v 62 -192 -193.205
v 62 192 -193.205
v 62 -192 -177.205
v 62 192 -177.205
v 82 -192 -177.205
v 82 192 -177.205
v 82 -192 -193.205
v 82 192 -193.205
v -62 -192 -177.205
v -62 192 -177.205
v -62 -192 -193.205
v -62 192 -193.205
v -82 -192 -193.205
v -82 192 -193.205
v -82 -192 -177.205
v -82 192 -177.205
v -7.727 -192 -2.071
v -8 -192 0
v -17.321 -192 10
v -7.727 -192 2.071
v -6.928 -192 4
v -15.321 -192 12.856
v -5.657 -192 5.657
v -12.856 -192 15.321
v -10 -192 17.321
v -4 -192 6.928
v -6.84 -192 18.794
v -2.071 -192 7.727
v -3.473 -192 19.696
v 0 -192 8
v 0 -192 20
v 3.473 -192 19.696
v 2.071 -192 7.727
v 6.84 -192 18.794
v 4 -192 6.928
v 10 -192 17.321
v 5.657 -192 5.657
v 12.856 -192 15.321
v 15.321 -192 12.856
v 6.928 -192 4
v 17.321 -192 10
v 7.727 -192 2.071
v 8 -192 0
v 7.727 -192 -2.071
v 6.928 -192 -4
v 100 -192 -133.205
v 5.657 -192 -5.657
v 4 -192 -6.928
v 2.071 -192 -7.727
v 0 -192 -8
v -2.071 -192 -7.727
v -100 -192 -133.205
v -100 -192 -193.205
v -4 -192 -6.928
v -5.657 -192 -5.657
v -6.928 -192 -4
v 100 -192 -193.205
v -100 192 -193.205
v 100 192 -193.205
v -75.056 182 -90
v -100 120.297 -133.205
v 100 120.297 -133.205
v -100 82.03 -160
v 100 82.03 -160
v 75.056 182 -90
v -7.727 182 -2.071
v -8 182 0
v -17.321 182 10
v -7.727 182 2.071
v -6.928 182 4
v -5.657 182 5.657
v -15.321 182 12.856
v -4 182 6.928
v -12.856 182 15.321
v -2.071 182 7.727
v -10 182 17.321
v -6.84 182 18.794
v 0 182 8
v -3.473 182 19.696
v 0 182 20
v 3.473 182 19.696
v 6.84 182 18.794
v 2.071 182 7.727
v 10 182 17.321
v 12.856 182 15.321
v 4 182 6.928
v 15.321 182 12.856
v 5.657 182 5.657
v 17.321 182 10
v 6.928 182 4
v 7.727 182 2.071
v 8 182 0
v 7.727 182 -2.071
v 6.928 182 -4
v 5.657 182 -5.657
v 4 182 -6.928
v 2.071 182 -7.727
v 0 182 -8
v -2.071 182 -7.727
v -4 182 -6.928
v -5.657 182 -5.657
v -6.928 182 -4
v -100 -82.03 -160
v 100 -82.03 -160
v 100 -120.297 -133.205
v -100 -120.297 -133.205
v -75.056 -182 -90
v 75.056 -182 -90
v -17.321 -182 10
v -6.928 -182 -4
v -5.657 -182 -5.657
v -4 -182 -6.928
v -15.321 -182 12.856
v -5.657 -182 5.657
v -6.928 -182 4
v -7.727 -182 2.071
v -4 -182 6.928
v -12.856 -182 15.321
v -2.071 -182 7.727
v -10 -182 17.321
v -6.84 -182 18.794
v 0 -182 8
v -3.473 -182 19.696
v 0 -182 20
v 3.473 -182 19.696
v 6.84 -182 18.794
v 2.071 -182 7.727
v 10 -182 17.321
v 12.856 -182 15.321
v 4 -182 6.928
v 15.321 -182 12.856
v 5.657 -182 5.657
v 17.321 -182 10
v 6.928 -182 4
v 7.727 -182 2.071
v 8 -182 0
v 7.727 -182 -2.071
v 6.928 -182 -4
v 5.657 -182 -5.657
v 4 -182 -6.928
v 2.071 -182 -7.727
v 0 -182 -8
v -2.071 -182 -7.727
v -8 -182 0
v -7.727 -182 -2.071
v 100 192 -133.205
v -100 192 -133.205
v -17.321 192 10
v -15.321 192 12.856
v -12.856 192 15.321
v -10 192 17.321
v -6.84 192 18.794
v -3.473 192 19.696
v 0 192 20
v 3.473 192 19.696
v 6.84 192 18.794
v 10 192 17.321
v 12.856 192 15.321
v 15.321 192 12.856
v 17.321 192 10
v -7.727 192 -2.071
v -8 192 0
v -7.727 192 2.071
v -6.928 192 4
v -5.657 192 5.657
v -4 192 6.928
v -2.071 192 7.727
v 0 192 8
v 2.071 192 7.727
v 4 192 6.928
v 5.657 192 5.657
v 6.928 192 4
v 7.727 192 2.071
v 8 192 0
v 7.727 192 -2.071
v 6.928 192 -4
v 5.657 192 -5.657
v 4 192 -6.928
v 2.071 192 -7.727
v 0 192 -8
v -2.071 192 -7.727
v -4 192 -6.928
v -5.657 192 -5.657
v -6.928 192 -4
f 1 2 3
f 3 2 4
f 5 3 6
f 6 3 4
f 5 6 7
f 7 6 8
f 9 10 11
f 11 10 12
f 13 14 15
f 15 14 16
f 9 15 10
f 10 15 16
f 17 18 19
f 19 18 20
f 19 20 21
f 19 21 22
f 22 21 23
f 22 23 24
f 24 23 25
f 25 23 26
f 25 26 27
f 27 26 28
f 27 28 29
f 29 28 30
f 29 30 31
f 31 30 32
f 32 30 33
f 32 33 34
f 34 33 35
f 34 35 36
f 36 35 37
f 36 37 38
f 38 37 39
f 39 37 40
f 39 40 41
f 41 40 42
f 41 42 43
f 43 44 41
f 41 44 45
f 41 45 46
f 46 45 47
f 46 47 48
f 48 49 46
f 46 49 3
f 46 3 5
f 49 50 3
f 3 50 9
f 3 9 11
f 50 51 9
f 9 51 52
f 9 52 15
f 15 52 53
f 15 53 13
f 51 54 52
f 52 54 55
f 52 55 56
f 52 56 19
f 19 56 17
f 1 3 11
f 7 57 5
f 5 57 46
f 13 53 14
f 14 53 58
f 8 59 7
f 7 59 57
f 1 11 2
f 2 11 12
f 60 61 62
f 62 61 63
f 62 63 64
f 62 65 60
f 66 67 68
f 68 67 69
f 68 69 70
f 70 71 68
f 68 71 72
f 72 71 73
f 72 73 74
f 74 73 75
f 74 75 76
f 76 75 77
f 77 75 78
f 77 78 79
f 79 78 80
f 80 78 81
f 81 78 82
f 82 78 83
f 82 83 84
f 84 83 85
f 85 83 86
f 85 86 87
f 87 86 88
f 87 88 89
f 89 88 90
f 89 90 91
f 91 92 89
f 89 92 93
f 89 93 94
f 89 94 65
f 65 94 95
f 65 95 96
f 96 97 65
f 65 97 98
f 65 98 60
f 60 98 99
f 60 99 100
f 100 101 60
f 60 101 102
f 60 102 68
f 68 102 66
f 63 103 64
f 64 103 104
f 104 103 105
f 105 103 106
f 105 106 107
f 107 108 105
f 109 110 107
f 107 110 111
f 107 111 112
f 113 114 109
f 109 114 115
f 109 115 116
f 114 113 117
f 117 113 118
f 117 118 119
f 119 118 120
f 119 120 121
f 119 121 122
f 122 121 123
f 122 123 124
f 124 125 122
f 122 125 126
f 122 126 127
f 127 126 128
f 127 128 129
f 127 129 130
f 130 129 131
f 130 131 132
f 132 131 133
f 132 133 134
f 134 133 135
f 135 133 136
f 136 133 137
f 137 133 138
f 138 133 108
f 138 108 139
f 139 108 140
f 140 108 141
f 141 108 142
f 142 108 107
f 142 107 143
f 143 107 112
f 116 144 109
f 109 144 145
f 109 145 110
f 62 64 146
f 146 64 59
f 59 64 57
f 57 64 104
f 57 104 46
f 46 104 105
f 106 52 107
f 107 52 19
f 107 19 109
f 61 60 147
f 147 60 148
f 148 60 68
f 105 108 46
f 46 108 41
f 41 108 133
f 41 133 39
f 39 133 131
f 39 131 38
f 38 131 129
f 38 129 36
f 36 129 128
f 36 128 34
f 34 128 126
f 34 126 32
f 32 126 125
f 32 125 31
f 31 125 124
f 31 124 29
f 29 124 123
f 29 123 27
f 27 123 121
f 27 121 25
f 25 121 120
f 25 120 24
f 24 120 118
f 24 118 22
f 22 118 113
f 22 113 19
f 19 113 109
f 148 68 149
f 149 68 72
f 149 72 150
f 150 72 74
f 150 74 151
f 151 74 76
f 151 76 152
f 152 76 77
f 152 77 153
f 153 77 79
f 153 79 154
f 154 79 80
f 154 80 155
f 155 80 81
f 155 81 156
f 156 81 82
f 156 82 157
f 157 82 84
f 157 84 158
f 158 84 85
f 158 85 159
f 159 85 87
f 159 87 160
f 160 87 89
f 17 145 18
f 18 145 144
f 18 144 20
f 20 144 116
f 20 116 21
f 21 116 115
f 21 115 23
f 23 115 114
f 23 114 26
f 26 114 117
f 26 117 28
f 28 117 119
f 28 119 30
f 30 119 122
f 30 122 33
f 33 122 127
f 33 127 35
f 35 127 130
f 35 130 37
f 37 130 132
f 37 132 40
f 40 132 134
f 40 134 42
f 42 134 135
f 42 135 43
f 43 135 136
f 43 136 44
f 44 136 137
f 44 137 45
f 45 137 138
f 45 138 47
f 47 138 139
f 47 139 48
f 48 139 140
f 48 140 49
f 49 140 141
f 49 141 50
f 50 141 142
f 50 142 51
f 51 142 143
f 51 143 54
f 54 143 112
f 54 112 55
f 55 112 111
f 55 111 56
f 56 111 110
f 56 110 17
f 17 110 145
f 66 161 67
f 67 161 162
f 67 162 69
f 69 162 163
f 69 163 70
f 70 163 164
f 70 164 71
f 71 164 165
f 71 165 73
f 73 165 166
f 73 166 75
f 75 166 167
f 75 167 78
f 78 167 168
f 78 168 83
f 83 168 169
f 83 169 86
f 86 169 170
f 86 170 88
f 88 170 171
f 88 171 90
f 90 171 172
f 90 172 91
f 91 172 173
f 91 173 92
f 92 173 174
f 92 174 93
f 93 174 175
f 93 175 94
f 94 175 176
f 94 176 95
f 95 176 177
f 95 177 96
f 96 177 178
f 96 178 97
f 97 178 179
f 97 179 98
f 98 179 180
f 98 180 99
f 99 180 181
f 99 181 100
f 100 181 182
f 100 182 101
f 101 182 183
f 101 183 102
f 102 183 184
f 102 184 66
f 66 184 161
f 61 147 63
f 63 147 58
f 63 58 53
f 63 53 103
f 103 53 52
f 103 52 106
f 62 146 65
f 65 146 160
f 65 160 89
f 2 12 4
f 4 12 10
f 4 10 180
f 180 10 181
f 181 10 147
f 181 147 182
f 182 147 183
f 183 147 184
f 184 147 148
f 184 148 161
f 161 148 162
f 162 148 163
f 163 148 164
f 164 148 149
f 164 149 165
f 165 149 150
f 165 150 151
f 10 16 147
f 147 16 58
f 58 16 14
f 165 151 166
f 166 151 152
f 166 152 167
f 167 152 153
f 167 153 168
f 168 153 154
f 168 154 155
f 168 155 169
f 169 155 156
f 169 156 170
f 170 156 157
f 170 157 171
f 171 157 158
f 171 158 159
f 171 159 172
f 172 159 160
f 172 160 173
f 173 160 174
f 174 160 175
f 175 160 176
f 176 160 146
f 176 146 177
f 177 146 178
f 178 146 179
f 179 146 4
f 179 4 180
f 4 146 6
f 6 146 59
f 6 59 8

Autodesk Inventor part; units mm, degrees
ref_plane "YZ Plane" through (0, 0, 0) normal (1, 0, 0) x (0, 1, 0)
ref_plane "XZ Plane" through (0, 0, 0) normal (0, 1, 0) x (-1, 0, 0)
ref_plane "XY Plane" through (0, 0, 0) normal (0, 0, 1) x (1, 0, 0)
sketch "Sketch1" plane through (0, 0, 0) normal (0, 1, 0) x (-1, 0, 0)
  line L0 (0, 26.7471) -> (0, -19.6773)
  circle A0 centre (0, 0) radius 8
  line L1 (17.3205, 10) -> (100, -133.2051)
  line L2 (100, -133.2051) -> (0, -133.2051) construction
  line L3 (43.971, 0) -> (-53.4185, 0)
  line L4 (-17.3205, 10) -> (-100, -133.2051)
  line L5 (-100, -133.2051) -> (0, -133.2051) construction
  line L6 (-43.971, 0) -> (53.4185, 0)
  line L7 (100, -133.2051) -> (100, -193.2051)
  line L8 (100, -193.2051) -> (-100, -193.2051)
  line L9 (-100, -193.2051) -> (-100, -133.2051)
  arc A1 (17.3205, 10) -> (-17.3205, 10) centre (0, 0) ccw
  point P0 (0, 40)
  dimension "d0" = 16
  dimension "d2" = 100
  dimension "d3" = 80
  dimension "d4" = 60
  dimension "d5" = 60
  dimension "d6" = 20
extrude "Extrusion1" add sketch "Sketch1" along normal mid plane 384 contours A1 L1 L3 A0 L0 | L0 A0 L3 L4 A1 | L3 L1 L7 L8 L9 L4 A0
sketch "Sketch2" plane through (0, 0, 0) normal (1, 0, 0) x (0, 1, 0)
  line L0 (0, 110.6795) -> (0, -260.886)
  line L1 (-192, 20) -> (192, 20) projected
  line L2 (-182, 20) -> (-182, -90)
  line L3 (-182, -90) -> (-82.0296, -160)
  line L4 (-82.0296, -160) -> (0, -160)
  line L5 (-182, 20) -> (0, 20)
  line L6 (-192, 10) -> (-192, -133.2051) projected
  line L7 (182, 20) -> (182, -90)
  line L8 (182, -90) -> (82.0296, -160)
  line L9 (82.0296, -160) -> (0, -160)
  line L10 (182, 20) -> (0, 20)
  point P0 (0, 0)
  dimension "d9" = 10
  dimension "d10" = 180
  dimension "d11" = 110
  dimension "d12" = 145
extrude "Extrusion2" cut sketch "Sketch2" along normal through all both and the other way through all
sketch "Sketch3" plane through (0, 192, 0) normal (0, 1, 0) x (1, 0, 0)
  circle A0 centre (0, 0) radius 8 projected
  line L0 (0, 0) -> (0, 264.7733)
  line L1 (-100, 193.2051) -> (100, 193.2051) projected
  line L2 (-82, 193.2051) -> (-62, 193.2051)
  line L3 (-62, 193.2051) -> (-62, 177.2051)
  line L4 (-62, 177.2051) -> (-82, 177.2051)
  line L5 (-82, 177.2051) -> (-82, 193.2051)
  line L6 (-100, 193.2051) -> (-100, 133.2051) projected
  line L7 (82, 193.2051) -> (62, 193.2051)
  line L8 (62, 193.2051) -> (62, 177.2051)
  line L9 (62, 177.2051) -> (82, 177.2051)
  line L10 (82, 177.2051) -> (82, 193.2051)
  dimension "d15" = 18
  dimension "d16" = 20
  dimension "d17" = 16
extrude "Extrusion3" cut sketch "Sketch3" against normal through all contours L3 L4 L5 L1 | L1 L10 L9 L8
properties part number "Y_axis"
